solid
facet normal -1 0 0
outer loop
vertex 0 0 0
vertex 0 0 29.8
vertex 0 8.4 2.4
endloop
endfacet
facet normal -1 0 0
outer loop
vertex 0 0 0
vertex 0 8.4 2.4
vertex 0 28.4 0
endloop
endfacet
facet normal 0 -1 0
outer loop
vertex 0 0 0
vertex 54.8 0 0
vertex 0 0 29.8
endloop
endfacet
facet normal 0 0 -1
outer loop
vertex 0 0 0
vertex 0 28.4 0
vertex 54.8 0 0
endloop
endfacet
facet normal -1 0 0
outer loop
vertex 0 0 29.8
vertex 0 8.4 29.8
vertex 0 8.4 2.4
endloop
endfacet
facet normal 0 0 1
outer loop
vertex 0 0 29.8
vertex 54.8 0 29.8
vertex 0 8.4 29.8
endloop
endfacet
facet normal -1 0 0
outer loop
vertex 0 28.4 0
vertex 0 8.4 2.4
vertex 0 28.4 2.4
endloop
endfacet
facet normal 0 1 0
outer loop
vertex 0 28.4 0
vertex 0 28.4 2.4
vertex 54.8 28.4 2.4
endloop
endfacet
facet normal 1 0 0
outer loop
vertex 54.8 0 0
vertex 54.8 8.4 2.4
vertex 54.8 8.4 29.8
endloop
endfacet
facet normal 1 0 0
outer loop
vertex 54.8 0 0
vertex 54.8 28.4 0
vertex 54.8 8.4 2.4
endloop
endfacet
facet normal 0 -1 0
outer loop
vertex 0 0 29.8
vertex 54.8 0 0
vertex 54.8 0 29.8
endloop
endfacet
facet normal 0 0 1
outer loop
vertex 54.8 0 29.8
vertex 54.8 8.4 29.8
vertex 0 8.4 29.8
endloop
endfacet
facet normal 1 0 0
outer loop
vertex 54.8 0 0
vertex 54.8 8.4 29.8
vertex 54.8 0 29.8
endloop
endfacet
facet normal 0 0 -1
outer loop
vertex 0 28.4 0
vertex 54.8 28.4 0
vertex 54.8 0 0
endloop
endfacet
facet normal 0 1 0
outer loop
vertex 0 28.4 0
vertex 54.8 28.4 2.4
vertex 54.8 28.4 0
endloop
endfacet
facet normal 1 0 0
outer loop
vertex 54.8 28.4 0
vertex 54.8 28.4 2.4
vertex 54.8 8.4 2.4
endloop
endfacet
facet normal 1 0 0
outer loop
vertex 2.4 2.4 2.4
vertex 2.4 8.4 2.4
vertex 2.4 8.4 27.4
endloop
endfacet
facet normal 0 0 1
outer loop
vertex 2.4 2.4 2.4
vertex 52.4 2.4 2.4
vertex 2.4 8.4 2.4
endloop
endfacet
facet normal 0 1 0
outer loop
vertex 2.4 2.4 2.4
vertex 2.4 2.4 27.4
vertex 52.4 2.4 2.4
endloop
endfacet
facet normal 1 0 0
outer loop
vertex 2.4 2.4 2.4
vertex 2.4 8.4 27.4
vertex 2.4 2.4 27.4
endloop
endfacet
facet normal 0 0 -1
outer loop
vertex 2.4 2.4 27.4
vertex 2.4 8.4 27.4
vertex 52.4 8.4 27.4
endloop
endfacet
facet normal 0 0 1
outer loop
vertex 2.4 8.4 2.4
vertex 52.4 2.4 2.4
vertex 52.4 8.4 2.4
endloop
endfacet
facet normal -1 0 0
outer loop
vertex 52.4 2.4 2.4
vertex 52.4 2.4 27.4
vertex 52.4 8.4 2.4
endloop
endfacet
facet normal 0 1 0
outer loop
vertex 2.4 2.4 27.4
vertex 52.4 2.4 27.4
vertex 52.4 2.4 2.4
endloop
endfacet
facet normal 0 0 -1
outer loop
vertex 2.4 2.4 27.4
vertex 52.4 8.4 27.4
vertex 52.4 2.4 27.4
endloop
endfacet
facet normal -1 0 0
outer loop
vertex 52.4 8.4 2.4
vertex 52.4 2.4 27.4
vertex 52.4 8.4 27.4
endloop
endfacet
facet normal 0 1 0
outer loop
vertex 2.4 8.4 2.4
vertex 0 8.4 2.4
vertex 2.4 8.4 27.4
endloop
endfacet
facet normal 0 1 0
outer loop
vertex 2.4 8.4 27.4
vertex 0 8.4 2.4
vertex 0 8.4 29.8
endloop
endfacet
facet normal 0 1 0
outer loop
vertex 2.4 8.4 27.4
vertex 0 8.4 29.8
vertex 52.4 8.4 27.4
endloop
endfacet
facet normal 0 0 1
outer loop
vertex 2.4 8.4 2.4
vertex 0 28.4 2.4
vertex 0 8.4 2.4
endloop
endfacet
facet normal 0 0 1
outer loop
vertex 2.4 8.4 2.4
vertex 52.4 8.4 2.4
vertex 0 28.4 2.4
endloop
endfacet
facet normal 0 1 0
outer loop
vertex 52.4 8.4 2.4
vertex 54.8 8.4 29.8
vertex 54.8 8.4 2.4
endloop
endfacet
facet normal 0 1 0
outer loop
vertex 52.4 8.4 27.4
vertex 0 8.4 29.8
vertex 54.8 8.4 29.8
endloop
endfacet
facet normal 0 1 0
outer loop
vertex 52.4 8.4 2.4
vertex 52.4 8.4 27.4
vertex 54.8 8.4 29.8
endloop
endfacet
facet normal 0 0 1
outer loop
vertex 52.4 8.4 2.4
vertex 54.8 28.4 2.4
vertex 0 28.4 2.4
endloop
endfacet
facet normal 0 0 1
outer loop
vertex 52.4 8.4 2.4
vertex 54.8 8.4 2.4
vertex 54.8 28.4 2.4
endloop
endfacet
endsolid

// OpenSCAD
// Tapa para el sensor infrarrojo (IR) del televisor de la cartelera.
// Se pega con cinta doble faz (3M VHB) sobre el borde inferior del marco,
// justo donde está el sensor, y no deja pasar la señal de los celulares.
// Imprimir en PLA o PETG NEGRO, 100 % de relleno, con la cara grande sobre la cama.
//
// Medidas en milímetros. Ajuste solo estas cinco:
ancho   = 50;  // largo del marco que se tapa (el sensor queda en el medio)
alto    = 25;  // cuánto sube la tapa por el frente del marco
holgura = 6;   // espacio entre la tapa y el marco (para el bulto del sensor/LED)
fondo   = 20;  // cuánto entra la base por debajo del televisor (ahí va la cinta)
pared   = 2.4; // grosor de las paredes (2.4 mm = 6 líneas con boquilla de 0.4)

difference() {
  // Bloque completo
  cube([ancho + 2*pared, pared + holgura + fondo, pared + alto + pared]);

  // Hueco frente al sensor (abierto hacia el televisor)
  translate([pared, pared, pared])
    cube([ancho, holgura + 0.01, alto]);

  // Espacio que ocupa el televisor: la base queda debajo y la tapa delante
  translate([-1, pared + holgura, pared])
    cube([ancho + 2*pared + 2, fondo + 1, alto + pared + 1]);
}
